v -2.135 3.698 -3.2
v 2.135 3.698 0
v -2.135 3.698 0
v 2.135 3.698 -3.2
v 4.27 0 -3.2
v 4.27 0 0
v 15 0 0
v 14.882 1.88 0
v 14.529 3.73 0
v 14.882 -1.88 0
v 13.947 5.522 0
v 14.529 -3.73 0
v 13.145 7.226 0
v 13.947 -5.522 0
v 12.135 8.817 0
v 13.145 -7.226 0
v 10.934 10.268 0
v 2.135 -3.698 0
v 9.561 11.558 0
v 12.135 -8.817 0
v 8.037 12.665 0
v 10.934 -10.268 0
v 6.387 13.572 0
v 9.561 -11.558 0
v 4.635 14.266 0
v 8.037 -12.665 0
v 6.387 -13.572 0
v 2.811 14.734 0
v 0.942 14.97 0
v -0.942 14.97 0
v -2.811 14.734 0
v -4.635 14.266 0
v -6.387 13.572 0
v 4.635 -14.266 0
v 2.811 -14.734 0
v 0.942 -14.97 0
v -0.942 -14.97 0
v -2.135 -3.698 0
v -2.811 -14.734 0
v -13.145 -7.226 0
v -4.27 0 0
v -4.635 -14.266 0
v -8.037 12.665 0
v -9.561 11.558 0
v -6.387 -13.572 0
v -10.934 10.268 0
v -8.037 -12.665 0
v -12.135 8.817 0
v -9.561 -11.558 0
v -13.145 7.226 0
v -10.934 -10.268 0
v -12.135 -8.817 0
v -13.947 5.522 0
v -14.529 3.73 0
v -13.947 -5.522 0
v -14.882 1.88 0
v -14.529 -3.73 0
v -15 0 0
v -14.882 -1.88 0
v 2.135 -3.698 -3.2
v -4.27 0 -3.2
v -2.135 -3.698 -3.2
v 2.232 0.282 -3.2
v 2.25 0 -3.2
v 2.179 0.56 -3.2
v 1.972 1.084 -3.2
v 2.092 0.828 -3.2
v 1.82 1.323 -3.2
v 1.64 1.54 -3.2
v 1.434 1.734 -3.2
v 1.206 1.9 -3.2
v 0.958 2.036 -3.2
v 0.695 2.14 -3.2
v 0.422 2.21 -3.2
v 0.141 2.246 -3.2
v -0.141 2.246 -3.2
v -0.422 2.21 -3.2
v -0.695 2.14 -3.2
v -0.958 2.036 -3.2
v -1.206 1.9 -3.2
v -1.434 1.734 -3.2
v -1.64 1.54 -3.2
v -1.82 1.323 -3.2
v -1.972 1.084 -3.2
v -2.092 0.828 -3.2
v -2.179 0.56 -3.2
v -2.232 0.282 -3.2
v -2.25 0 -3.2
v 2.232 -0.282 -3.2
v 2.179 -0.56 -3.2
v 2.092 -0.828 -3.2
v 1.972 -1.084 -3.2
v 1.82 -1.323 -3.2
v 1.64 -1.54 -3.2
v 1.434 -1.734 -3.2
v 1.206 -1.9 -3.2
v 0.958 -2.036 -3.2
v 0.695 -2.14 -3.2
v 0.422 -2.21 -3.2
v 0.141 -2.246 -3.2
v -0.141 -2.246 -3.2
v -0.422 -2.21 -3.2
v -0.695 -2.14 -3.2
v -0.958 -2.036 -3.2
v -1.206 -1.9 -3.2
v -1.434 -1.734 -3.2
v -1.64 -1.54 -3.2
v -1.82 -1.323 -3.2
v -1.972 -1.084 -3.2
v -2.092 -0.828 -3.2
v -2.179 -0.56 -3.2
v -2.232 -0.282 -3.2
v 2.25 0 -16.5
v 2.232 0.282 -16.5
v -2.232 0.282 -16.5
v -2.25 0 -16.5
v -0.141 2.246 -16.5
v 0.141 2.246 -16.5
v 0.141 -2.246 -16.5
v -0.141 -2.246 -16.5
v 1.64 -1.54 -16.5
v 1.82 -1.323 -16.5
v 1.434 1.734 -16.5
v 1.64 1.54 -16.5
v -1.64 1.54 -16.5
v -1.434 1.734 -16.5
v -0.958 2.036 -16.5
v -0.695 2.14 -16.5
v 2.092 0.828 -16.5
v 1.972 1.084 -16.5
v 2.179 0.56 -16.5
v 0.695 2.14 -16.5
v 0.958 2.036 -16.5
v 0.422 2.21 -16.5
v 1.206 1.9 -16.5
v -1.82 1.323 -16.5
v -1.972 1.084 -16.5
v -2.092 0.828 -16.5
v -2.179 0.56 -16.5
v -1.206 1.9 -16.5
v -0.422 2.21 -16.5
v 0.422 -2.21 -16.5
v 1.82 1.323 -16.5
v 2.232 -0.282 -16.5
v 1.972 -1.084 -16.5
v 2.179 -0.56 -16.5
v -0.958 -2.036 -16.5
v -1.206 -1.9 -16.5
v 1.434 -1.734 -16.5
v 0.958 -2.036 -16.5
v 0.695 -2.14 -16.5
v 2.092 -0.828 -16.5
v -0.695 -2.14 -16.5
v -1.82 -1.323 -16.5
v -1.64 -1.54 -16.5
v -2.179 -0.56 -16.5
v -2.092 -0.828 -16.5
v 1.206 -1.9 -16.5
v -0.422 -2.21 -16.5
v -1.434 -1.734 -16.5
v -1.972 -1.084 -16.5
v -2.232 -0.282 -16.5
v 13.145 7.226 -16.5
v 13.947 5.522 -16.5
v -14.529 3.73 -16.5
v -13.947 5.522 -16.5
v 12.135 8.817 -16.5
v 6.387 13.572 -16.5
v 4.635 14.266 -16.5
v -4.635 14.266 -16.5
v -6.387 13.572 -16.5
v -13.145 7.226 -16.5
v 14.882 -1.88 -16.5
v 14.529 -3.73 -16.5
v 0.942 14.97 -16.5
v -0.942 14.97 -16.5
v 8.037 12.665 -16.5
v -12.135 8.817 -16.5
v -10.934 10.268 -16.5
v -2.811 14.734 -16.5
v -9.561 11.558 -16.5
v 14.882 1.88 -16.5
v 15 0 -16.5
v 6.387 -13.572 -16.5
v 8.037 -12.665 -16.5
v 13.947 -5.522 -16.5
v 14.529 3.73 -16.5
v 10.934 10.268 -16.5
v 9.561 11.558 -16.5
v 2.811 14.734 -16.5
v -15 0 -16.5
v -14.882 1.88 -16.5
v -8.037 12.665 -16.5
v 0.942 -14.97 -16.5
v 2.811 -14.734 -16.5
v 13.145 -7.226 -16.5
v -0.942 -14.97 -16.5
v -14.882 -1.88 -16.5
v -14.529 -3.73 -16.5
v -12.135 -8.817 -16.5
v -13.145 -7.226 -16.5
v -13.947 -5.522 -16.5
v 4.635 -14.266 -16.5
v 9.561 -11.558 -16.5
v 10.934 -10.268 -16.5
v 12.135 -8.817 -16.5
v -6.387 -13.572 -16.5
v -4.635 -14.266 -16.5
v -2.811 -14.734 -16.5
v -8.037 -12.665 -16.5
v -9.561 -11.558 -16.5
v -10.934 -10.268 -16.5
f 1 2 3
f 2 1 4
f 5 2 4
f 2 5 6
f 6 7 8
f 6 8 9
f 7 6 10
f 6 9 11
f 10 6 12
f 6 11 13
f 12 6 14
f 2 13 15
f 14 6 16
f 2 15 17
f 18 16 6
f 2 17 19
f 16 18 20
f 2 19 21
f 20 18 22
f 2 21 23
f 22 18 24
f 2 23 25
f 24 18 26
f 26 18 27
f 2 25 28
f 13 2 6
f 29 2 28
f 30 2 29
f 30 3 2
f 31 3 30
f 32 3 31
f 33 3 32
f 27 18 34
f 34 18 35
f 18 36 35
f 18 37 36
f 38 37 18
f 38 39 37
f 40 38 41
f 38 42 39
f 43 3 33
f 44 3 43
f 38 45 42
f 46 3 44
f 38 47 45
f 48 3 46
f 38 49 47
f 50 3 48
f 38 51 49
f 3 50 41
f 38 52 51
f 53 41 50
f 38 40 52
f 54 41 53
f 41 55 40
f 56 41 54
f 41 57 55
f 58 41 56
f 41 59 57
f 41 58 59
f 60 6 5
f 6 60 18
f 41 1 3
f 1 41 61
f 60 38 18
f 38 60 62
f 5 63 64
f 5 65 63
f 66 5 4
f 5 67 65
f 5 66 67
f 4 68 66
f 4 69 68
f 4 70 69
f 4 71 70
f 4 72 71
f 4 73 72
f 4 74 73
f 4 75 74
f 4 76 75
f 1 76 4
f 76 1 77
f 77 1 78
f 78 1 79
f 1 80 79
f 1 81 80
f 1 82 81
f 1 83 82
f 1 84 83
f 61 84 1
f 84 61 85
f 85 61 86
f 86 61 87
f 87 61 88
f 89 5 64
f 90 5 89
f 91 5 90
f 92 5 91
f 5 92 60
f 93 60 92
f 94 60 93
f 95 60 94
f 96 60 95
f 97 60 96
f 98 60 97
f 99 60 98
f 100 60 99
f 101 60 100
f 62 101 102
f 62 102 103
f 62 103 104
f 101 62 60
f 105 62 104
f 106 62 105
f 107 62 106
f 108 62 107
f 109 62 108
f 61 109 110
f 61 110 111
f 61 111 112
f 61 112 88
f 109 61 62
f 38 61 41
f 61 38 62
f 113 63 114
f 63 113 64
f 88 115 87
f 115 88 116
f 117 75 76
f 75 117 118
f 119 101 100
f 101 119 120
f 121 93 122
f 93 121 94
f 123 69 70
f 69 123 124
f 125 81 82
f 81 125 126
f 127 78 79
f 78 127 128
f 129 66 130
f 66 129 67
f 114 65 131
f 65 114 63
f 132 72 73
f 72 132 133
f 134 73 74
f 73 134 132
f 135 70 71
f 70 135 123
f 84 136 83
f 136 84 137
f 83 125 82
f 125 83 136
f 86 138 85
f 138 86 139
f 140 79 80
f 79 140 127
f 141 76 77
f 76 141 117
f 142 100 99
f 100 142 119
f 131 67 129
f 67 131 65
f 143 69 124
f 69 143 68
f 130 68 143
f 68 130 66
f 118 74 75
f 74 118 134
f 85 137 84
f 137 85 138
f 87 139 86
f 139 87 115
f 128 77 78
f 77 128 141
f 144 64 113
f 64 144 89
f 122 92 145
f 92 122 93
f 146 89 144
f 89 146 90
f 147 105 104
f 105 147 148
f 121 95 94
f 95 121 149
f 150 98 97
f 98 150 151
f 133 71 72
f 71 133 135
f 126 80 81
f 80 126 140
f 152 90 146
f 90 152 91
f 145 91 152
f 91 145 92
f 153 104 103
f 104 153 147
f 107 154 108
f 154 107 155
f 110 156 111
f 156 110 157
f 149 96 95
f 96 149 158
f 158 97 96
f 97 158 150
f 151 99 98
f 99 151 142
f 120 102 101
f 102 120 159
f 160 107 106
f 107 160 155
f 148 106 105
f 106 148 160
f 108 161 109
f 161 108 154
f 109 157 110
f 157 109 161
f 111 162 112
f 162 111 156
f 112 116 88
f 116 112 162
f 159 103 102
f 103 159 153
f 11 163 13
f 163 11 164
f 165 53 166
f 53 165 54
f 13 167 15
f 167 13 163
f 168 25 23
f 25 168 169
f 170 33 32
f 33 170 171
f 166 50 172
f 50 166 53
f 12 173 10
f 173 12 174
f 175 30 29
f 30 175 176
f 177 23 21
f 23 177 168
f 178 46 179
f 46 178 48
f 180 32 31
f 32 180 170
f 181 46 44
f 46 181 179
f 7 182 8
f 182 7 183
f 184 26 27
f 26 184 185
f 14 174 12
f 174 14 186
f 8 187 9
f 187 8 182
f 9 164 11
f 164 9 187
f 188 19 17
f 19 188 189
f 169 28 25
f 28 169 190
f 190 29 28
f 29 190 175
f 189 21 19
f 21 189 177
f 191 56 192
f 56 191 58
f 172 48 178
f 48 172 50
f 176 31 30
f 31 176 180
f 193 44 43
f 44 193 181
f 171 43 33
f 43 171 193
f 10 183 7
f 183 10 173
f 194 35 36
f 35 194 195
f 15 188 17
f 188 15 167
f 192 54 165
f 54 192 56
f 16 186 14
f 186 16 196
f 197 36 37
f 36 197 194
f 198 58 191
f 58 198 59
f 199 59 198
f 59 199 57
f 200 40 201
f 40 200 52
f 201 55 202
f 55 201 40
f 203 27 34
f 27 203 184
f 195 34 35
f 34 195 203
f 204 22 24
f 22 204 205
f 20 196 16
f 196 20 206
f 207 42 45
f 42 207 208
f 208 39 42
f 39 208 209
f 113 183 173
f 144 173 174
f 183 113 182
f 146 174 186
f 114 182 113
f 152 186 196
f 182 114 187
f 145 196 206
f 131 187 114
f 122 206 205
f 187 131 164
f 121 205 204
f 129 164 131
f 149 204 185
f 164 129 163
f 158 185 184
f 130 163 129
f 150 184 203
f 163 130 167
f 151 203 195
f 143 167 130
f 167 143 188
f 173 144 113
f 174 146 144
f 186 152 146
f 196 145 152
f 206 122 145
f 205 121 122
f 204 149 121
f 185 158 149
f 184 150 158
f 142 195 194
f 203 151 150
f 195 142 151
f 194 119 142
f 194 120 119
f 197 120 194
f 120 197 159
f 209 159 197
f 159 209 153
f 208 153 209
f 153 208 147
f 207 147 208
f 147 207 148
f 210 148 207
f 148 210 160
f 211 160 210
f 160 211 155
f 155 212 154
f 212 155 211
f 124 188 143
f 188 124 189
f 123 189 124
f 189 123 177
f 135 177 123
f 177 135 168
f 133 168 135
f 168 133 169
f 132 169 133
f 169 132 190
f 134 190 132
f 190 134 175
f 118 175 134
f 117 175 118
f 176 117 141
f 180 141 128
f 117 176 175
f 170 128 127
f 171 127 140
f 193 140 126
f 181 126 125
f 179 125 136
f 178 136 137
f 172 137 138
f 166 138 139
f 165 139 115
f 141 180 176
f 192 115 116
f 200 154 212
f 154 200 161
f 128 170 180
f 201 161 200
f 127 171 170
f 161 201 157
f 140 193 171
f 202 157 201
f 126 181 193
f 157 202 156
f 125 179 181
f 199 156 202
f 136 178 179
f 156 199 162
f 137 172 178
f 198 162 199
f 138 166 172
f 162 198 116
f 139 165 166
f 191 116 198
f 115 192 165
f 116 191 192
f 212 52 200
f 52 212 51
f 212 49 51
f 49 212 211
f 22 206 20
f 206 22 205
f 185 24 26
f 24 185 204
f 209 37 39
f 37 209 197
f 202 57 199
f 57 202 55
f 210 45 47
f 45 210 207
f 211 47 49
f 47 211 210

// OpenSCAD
$fn = 50;

difference() {
	union() {
		translate(v = [0, 0, -16.5]) {
			cylinder(h = 16.5, r = 15.0);
		}
	}
	union() {
		translate(v = [0, 0, 0]) {
			rotate(a = [0, 0, 0]) {
				difference() {
					union() {
						translate(v = [0, 0, -3.2]) {
							linear_extrude(height = 3.2) {
								polygon(points = [[4.2698, 0.0], [2.1349000000000005, 3.697755269078796], [-2.134899999999999, 3.6977552690787965], [-4.2698, 5.228996902999369e-16], [-2.134900000000002, -3.6977552690787956], [2.1348999999999974, -3.697755269078798]]);
							}
						}
					}
					union();
				}
			}
		}
		#translate(v = [0, 0, -100.0]) {
			cylinder(h = 200, r = 2.25);
		}
	}
}
